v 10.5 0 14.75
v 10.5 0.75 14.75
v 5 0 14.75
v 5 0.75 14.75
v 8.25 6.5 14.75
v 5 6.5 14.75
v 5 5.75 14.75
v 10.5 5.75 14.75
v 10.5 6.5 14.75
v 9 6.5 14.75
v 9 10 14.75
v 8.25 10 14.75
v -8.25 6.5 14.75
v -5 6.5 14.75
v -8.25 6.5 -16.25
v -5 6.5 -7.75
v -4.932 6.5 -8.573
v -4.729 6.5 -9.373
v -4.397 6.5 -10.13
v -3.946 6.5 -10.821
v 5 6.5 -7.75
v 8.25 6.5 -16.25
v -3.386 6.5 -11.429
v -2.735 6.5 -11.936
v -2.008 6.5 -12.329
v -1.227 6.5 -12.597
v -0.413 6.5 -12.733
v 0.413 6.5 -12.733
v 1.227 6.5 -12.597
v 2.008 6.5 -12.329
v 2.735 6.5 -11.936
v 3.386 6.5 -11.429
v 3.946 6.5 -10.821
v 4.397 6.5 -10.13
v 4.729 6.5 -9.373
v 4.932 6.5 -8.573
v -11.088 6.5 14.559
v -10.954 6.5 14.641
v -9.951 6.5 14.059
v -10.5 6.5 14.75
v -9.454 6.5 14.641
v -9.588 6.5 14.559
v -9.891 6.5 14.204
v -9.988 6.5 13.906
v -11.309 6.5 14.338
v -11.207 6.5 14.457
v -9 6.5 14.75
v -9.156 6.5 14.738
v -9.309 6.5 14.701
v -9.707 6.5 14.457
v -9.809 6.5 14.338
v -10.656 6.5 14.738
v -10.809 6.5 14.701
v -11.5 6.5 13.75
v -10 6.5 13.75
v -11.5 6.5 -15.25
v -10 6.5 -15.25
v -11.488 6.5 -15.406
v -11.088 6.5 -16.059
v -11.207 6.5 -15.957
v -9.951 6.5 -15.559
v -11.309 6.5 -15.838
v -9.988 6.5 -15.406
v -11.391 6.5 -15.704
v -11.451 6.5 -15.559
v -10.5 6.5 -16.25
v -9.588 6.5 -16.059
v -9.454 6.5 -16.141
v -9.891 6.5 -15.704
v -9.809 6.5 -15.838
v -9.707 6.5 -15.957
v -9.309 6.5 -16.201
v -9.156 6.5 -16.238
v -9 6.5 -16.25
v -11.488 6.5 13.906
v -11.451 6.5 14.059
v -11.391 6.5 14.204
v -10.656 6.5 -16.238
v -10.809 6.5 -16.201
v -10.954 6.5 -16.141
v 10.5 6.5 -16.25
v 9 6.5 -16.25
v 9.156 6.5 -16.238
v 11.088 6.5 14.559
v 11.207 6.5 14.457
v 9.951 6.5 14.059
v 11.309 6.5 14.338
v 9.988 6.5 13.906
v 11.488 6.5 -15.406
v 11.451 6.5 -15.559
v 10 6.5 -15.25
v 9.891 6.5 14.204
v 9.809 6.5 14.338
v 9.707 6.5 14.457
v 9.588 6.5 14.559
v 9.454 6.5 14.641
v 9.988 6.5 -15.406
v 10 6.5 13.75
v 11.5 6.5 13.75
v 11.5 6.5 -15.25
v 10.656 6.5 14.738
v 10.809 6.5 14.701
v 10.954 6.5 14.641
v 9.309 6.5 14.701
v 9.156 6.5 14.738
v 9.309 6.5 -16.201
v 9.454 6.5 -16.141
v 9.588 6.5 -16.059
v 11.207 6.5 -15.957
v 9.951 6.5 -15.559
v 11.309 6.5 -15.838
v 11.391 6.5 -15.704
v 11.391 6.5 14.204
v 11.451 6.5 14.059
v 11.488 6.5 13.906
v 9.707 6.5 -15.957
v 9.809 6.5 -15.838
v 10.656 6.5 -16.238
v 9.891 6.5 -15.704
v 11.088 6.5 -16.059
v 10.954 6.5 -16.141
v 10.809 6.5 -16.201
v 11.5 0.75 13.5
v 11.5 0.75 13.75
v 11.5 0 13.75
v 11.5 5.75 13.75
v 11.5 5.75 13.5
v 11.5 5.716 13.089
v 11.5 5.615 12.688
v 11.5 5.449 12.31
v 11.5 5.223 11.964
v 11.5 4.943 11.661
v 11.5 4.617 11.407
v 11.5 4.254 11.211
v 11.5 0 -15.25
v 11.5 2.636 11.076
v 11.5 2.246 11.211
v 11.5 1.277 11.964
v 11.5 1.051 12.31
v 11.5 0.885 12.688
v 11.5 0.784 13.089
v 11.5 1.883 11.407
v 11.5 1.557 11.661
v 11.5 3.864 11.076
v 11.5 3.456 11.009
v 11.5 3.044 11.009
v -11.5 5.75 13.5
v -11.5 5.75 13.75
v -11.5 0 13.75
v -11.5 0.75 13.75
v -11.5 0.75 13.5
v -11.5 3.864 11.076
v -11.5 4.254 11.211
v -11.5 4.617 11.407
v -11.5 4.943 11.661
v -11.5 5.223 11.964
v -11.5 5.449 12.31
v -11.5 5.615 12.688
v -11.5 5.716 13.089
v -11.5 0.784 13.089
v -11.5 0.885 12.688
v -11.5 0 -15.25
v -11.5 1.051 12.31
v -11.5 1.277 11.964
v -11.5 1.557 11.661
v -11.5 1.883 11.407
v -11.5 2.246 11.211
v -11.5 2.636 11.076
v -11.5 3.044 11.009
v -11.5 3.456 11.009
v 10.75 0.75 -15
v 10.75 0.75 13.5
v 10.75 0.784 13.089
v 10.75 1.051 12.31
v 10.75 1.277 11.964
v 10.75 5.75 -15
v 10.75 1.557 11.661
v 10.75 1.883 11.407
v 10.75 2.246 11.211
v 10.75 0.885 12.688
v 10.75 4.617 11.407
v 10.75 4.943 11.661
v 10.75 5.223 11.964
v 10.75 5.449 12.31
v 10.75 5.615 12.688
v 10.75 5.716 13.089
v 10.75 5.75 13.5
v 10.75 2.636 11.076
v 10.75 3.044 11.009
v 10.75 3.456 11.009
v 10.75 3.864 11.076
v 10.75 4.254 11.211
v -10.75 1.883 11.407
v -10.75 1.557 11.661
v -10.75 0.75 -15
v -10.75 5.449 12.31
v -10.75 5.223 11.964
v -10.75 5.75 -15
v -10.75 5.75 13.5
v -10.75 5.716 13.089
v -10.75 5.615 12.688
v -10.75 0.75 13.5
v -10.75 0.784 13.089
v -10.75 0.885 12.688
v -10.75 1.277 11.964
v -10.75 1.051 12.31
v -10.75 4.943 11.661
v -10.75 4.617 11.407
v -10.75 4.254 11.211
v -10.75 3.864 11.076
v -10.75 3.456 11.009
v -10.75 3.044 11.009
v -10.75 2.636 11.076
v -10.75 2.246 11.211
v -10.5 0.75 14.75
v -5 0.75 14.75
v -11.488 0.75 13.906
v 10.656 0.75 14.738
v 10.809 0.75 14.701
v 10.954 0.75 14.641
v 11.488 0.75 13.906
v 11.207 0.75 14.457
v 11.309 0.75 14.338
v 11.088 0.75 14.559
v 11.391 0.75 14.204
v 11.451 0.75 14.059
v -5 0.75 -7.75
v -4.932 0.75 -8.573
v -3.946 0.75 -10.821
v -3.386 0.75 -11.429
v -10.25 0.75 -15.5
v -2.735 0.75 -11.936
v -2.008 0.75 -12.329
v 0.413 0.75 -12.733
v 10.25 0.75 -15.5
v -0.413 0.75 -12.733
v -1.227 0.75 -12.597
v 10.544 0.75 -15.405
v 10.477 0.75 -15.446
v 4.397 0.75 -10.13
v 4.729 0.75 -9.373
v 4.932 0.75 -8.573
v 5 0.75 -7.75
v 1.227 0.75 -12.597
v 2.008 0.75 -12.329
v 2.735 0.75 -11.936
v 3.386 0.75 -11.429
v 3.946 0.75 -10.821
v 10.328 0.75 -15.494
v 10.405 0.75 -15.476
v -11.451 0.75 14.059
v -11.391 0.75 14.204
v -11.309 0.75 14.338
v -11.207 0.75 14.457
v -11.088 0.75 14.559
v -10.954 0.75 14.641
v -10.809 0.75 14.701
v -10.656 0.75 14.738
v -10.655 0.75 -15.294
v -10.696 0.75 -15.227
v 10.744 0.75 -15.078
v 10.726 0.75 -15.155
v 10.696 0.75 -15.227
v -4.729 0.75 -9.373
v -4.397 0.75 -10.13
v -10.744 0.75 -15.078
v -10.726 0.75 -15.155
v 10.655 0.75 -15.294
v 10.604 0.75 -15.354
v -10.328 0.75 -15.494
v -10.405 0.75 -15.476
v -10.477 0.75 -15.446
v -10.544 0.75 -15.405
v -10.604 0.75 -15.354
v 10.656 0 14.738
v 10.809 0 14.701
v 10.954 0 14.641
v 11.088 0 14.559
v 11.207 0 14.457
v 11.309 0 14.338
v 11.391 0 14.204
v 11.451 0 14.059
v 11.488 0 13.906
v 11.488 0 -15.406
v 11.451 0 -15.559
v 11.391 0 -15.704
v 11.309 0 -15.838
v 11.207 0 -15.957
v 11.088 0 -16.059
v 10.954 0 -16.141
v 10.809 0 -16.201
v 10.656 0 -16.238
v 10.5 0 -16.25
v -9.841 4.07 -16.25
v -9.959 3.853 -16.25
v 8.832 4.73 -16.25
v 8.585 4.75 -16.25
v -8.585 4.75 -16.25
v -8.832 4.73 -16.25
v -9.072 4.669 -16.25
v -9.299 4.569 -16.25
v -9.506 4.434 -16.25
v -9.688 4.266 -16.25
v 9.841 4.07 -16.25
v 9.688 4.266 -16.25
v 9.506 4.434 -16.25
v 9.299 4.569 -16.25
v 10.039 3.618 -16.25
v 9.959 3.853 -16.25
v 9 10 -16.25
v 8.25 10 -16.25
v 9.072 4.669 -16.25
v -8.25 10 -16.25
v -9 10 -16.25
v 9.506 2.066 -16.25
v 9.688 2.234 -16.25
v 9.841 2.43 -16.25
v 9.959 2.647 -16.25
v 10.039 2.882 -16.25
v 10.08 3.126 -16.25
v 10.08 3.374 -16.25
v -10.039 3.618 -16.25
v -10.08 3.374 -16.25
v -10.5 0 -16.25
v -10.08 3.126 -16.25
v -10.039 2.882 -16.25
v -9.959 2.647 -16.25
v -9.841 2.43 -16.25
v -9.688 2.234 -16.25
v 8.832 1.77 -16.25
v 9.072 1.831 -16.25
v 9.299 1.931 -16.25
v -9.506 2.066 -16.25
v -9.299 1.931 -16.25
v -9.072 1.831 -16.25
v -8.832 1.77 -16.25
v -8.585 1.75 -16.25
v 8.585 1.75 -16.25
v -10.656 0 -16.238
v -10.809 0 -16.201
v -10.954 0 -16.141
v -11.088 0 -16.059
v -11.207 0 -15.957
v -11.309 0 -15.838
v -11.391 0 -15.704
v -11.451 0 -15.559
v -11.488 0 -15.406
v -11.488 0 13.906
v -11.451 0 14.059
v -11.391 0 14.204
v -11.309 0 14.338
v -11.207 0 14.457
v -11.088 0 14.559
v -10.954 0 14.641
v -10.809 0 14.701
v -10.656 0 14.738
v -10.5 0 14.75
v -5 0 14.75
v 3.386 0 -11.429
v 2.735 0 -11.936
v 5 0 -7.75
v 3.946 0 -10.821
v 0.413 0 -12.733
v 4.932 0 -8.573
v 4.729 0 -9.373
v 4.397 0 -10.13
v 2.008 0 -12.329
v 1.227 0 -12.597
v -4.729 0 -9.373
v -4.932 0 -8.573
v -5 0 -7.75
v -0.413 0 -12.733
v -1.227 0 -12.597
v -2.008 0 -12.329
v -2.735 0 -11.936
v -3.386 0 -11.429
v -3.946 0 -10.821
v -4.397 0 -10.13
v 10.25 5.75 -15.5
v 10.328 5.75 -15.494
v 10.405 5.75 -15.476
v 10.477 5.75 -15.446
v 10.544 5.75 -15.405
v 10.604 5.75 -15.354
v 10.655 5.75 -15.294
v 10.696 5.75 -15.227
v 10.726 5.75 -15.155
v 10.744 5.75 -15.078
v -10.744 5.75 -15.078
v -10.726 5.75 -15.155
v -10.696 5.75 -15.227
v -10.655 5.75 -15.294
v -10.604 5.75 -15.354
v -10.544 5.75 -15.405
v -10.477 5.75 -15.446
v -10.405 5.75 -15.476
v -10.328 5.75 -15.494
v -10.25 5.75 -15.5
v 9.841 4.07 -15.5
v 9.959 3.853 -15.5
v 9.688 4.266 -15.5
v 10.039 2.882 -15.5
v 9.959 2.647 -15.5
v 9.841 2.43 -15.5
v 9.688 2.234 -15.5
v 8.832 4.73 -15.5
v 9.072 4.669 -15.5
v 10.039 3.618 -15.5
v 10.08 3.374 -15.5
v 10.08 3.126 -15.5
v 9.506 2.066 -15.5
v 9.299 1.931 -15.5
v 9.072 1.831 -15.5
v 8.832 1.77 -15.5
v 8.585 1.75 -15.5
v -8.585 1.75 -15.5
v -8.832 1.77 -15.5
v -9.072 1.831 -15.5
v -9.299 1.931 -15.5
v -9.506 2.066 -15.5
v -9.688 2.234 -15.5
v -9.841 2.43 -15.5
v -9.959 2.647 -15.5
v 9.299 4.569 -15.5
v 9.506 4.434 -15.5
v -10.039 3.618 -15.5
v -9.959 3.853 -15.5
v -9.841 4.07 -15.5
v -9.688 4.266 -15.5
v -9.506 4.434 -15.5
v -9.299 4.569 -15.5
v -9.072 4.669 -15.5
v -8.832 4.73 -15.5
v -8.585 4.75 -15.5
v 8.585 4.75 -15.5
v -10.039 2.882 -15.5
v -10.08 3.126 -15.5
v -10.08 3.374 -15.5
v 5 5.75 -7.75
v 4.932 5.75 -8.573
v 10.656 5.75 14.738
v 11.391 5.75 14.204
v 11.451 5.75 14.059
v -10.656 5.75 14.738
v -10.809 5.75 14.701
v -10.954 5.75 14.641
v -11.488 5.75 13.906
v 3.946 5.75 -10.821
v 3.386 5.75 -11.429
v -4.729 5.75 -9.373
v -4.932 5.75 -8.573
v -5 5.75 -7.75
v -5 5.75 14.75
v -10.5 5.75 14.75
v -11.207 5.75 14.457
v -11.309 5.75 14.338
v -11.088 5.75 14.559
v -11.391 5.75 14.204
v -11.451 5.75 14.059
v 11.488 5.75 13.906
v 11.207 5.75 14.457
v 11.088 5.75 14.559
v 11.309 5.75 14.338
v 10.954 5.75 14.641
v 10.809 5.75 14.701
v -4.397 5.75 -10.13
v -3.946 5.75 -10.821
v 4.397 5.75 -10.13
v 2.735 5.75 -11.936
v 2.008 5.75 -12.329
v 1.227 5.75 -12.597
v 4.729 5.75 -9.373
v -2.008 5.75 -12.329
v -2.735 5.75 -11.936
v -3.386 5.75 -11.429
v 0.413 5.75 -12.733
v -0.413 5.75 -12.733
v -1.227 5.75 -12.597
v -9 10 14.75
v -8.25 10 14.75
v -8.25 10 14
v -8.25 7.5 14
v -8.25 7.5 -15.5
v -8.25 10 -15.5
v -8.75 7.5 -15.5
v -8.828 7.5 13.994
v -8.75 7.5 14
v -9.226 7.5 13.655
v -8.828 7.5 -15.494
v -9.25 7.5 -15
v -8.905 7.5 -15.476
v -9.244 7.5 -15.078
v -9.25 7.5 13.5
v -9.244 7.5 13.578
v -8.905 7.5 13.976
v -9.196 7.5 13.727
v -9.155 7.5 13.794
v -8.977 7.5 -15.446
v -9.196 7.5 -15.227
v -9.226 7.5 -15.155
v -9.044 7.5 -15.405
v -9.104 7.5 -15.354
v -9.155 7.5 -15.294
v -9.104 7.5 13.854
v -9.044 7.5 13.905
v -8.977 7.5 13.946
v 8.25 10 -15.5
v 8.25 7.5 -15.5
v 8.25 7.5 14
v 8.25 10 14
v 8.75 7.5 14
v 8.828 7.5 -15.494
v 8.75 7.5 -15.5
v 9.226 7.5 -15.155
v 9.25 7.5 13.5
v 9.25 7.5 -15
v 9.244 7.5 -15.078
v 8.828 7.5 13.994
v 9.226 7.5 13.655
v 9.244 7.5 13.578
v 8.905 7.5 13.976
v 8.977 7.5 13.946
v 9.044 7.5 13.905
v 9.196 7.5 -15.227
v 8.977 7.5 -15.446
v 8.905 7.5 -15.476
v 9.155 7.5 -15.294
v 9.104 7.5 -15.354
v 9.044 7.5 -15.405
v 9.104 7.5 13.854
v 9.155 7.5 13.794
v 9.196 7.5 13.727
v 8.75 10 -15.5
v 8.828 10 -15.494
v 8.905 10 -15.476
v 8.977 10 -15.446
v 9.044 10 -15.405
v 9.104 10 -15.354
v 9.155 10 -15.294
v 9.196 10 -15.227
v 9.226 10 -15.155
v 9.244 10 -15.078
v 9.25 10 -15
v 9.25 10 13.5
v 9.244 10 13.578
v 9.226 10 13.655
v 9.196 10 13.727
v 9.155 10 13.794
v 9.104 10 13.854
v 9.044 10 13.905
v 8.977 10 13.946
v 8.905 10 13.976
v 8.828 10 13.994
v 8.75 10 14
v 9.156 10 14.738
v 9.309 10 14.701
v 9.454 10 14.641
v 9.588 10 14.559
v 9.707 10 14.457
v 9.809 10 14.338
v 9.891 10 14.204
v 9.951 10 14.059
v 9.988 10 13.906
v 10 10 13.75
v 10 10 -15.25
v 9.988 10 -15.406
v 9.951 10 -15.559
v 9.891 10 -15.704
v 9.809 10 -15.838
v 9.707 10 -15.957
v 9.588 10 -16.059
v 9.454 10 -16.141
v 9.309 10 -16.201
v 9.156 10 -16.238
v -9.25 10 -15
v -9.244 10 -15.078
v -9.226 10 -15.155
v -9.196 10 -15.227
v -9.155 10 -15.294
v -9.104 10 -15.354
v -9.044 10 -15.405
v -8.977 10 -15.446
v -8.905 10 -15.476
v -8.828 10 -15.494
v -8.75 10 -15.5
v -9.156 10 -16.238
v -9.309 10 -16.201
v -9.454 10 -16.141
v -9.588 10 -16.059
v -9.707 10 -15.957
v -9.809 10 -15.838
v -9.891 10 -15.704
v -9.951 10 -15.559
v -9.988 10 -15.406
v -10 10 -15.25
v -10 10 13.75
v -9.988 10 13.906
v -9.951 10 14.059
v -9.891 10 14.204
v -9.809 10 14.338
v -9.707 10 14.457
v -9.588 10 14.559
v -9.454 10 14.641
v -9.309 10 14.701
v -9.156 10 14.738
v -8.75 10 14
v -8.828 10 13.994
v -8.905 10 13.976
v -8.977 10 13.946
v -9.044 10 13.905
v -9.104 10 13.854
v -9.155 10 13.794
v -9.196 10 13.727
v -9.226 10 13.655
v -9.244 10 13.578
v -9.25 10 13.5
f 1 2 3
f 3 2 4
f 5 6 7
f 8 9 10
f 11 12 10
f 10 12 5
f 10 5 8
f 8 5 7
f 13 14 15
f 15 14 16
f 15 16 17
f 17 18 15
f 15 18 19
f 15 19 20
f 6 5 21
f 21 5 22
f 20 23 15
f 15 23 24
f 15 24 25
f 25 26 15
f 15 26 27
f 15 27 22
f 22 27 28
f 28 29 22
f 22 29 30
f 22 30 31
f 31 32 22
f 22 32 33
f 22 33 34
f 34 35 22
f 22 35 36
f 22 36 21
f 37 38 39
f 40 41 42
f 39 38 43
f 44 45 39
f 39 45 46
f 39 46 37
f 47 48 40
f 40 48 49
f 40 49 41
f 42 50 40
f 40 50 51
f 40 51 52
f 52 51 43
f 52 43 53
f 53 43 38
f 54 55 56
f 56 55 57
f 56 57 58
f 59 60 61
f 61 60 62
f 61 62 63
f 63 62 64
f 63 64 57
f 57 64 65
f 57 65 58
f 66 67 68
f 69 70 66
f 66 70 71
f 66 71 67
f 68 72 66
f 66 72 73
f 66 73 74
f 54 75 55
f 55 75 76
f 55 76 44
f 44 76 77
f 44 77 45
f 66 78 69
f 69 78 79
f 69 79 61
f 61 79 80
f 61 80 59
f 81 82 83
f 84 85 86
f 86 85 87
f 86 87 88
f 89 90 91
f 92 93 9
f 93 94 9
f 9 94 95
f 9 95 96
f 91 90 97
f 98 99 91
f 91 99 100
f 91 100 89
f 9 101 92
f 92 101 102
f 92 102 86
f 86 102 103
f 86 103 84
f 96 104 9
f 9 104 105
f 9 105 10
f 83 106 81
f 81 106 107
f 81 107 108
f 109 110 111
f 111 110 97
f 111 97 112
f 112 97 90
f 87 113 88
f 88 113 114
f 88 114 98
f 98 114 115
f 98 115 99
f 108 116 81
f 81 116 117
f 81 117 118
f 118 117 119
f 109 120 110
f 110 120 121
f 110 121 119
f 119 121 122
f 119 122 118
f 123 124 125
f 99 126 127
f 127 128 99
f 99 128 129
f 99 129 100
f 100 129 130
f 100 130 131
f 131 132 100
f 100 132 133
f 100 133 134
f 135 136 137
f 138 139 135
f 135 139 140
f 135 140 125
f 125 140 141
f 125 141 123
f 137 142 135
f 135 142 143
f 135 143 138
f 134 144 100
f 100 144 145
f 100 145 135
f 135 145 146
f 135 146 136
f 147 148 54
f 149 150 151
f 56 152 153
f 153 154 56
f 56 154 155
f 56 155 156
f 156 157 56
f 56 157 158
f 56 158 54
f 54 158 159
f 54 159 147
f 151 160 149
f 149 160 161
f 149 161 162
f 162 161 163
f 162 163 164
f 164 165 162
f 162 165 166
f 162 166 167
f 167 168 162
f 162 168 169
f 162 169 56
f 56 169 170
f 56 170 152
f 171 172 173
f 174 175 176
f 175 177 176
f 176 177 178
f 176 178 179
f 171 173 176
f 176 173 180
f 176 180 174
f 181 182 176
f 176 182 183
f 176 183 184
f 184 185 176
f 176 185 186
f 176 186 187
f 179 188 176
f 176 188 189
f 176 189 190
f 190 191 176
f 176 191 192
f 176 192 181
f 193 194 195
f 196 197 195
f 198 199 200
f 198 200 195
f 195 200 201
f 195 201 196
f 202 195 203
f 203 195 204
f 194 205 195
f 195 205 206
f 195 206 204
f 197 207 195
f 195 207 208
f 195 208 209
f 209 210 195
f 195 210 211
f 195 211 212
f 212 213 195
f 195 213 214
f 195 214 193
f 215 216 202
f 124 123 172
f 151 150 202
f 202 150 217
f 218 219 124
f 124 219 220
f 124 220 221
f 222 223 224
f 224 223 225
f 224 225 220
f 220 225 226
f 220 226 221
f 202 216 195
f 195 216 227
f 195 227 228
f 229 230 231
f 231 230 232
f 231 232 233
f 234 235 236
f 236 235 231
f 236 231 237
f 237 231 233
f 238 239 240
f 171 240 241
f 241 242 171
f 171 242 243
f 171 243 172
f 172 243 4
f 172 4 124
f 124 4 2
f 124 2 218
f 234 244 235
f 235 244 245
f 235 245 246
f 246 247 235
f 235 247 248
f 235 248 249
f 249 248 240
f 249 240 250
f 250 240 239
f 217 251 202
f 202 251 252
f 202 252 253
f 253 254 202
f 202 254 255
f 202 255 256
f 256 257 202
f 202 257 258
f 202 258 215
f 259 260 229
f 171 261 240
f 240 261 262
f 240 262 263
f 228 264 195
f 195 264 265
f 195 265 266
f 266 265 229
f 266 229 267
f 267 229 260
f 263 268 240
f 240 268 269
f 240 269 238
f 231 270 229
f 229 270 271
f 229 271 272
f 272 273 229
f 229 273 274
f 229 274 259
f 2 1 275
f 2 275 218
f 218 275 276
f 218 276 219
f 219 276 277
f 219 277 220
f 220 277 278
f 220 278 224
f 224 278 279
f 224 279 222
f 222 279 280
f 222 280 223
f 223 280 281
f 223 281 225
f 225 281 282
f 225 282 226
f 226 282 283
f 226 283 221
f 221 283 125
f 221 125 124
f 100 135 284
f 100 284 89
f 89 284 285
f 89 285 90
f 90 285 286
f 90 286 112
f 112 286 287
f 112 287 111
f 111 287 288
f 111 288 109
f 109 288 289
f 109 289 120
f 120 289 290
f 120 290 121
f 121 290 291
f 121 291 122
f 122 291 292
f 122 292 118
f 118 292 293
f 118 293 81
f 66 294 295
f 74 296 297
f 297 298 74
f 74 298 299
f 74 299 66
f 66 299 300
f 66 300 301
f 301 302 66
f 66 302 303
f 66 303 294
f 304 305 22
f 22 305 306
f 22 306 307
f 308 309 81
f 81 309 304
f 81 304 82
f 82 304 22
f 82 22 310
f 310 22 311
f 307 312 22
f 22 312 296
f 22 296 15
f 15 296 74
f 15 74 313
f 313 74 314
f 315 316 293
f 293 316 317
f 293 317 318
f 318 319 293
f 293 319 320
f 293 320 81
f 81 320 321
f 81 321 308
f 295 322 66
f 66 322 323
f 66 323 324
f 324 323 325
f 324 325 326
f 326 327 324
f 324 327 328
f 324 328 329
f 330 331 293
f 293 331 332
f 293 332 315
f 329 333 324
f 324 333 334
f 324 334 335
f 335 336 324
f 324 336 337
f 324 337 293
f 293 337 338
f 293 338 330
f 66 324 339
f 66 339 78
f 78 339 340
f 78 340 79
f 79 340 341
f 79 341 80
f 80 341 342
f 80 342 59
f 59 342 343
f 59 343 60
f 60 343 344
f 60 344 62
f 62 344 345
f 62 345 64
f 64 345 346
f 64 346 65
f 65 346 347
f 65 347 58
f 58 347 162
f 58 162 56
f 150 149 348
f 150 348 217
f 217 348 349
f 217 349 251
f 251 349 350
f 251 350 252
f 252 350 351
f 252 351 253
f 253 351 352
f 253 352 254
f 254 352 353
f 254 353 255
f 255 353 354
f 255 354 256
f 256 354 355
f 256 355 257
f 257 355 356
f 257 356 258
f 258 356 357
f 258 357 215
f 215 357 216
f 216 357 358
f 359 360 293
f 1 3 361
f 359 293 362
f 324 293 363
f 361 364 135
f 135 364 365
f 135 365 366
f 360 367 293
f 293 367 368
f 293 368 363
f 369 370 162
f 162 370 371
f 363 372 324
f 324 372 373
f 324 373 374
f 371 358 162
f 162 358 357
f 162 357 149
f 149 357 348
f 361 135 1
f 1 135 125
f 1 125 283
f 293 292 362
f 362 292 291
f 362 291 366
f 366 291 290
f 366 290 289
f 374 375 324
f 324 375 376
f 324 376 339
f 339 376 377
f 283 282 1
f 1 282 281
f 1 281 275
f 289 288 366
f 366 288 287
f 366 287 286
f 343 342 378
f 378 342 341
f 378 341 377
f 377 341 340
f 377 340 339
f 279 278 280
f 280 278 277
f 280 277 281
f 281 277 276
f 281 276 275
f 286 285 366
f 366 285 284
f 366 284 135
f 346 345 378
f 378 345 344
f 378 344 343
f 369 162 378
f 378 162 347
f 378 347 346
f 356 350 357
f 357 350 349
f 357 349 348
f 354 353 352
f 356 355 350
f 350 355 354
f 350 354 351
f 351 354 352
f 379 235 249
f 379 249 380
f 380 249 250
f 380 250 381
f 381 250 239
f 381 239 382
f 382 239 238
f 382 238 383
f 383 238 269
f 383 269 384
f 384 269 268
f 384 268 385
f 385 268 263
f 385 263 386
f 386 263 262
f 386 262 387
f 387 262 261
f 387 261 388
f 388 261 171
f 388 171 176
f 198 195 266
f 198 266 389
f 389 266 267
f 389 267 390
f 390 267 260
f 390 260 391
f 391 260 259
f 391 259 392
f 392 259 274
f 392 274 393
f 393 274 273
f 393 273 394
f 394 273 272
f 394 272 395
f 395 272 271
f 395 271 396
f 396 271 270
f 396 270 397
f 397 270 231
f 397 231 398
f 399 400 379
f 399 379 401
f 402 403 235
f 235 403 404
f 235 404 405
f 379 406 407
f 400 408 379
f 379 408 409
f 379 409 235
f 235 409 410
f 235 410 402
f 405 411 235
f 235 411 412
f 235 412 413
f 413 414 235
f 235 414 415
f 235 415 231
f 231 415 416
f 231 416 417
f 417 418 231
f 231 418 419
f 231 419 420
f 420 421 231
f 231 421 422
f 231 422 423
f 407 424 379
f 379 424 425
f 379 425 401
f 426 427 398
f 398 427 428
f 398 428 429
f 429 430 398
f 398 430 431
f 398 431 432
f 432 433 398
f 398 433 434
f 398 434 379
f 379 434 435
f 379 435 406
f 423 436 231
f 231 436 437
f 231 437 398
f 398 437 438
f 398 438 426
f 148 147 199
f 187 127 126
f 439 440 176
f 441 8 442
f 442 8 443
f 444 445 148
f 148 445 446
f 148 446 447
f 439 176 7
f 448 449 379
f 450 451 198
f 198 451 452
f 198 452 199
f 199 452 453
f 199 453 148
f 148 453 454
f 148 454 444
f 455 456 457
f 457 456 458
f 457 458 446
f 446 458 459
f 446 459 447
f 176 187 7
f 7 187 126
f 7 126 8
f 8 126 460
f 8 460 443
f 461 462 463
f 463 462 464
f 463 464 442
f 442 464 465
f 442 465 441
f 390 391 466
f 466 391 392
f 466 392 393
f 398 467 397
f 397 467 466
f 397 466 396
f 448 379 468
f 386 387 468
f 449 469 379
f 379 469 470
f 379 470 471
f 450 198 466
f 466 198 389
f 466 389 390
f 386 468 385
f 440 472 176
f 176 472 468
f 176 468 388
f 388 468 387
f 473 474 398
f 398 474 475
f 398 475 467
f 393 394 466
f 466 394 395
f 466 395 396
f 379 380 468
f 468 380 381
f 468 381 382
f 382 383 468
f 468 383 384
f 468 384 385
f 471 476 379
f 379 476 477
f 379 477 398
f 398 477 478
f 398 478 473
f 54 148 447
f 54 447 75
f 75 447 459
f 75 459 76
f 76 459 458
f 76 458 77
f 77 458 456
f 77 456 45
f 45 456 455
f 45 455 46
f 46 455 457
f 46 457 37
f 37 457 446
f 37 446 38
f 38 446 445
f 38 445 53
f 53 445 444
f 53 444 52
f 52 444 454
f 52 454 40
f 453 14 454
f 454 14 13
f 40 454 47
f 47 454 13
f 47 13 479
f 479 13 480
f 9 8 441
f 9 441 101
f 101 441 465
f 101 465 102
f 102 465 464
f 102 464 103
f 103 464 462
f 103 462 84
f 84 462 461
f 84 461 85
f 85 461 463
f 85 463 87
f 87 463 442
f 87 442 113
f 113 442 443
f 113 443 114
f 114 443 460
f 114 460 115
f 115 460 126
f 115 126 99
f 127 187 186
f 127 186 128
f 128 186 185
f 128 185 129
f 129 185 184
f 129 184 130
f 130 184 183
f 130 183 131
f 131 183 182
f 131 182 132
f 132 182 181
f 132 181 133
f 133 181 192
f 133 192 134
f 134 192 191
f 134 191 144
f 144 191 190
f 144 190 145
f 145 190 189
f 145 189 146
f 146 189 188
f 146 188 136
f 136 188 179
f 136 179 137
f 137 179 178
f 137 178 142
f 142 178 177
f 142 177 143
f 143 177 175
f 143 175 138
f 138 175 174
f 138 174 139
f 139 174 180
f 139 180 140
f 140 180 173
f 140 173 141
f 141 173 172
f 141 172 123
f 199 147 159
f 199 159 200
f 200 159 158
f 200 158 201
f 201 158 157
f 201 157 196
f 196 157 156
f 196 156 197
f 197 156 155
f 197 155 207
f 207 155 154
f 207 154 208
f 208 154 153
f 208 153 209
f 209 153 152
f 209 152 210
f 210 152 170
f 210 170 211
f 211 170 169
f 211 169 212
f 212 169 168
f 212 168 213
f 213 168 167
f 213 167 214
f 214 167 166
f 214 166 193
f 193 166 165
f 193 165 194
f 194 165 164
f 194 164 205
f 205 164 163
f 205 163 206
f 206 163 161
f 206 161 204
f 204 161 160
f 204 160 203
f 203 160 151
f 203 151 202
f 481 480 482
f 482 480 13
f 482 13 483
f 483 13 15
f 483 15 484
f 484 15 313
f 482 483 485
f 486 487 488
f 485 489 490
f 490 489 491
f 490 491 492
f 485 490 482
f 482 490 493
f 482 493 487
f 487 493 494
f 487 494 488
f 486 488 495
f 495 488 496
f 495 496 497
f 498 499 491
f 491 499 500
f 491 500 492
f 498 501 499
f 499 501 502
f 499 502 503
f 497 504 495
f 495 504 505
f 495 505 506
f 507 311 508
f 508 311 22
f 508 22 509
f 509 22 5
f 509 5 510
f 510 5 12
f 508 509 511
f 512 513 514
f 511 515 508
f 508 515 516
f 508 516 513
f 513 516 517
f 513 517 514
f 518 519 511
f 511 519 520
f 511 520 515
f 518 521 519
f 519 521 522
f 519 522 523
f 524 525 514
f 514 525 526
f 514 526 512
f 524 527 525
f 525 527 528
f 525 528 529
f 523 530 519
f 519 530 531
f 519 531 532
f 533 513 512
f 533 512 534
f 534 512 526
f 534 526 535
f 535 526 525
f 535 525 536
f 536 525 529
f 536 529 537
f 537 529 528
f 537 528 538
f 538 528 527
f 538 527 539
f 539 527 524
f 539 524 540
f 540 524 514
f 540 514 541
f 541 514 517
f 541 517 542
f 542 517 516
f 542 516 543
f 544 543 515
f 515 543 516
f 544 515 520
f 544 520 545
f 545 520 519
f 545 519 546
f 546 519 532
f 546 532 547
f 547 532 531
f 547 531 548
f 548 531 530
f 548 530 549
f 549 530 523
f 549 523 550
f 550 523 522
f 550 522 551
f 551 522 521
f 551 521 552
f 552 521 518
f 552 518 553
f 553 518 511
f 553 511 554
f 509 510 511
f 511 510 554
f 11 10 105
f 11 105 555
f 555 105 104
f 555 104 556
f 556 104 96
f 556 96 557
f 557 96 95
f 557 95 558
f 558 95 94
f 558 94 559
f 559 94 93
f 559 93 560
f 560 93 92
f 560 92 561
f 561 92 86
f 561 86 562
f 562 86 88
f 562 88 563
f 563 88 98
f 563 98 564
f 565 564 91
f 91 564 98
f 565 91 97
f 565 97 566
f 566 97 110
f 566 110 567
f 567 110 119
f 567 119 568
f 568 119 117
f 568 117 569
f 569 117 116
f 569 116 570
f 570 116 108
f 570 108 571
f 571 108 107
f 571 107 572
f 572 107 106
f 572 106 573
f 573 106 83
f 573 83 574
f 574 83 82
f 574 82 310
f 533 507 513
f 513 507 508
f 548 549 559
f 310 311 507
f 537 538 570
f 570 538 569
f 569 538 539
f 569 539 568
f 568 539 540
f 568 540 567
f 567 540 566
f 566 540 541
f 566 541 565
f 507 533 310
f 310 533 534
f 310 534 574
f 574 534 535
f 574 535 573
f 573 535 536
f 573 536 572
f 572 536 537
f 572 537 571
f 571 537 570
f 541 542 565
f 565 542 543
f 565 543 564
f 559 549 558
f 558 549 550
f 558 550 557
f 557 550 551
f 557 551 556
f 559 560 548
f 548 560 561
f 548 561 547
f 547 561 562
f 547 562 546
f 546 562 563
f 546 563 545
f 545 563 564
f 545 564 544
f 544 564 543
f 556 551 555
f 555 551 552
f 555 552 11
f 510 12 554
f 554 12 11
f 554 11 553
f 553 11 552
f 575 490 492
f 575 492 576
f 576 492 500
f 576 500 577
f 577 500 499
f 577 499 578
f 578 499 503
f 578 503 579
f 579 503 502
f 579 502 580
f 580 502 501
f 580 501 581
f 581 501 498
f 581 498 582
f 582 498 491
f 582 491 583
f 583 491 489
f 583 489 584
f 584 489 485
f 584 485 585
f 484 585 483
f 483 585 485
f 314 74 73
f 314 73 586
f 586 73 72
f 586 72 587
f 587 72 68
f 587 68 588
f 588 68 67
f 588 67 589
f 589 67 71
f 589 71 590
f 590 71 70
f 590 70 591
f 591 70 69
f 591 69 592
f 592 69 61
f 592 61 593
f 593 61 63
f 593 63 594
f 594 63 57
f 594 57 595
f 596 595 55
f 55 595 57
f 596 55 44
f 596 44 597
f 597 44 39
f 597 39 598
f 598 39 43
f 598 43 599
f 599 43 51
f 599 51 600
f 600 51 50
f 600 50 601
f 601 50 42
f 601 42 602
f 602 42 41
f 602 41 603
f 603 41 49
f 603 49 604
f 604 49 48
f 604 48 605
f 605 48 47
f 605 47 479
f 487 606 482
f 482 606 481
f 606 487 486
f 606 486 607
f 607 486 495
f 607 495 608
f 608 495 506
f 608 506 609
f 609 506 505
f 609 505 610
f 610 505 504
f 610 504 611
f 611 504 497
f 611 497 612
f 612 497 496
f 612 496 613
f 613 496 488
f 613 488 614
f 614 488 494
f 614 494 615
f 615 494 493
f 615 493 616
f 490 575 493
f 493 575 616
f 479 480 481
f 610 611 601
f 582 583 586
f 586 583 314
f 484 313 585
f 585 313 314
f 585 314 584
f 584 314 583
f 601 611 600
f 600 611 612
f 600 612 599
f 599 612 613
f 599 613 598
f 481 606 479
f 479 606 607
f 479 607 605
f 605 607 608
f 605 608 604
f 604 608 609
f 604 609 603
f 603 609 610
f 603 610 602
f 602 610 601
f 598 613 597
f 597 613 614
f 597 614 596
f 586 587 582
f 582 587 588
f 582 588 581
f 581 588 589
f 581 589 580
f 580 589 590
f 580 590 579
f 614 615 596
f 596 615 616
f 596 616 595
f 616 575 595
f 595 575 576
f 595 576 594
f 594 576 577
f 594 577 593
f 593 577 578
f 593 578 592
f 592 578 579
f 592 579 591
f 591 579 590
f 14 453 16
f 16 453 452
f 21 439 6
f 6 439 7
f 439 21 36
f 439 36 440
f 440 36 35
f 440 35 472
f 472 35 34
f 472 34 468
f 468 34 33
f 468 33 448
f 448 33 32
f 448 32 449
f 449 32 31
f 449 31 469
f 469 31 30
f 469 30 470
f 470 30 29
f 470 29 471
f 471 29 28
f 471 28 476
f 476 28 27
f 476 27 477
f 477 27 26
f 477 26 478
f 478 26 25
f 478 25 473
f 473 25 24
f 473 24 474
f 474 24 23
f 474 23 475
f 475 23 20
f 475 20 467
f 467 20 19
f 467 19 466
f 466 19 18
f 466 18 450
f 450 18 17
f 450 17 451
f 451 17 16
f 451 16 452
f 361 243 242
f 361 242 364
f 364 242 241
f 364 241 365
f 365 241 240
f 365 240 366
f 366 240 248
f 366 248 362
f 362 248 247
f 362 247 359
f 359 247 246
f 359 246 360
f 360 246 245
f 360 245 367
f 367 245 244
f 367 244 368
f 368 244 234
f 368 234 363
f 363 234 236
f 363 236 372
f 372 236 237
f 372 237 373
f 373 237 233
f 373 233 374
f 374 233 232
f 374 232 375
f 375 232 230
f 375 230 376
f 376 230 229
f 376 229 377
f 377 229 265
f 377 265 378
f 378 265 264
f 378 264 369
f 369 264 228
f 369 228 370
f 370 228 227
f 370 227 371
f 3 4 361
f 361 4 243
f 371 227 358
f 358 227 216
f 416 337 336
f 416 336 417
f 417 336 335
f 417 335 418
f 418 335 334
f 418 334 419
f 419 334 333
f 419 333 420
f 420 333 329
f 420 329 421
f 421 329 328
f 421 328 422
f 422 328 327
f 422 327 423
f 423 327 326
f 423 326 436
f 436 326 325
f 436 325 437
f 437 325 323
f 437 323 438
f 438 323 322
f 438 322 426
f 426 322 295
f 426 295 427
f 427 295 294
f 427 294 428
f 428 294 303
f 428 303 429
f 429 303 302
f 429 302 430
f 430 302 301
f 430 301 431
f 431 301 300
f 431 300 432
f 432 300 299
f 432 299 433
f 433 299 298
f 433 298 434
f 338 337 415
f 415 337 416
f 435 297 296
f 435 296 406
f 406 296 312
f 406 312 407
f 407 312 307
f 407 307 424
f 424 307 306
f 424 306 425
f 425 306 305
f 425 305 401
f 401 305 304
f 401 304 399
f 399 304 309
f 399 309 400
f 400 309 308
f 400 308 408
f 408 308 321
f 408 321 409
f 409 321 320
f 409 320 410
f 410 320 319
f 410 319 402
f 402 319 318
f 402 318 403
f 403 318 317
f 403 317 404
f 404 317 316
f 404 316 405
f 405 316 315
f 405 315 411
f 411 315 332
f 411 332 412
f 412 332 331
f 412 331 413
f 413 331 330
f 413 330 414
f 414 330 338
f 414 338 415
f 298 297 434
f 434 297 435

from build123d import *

# Parameters (mm, degrees)
BASE_EXTRUDE_DEPTH        = 0.75
SIDEWALL_EXTRUDE_DEPTH    = 5.75
TOP_EXTRUDE_START         = 5.75
TOP_EXTRUDE_DEPTH         = 0.75
CUT_EXTRUDE1_DEPTH        = 29.901773302
CUT_EXTRUDE1_DEPTH_BACK   = 29.901773302
PCB_SUPPORT_EXTRUDE_DEPTH = 1
PCB_RIM_EXTRUDE_DEPTH     = 3.5
CUT_EXTRUDE2_DEPTH        = 21.941883869
CUT_EXTRUDE3_DEPTH        = 3.5


with BuildPart() as part:
    # battery-base → base-extrude (new body)
    with BuildSketch(Plane(origin=(0, 0, 0), x_dir=(1, 0, 0), z_dir=(0, 1, 0))):
        with BuildLine():
            Line((-10.5, 16.25), (10.5, 16.25))
            ThreePointArc((10.5, 16.25), (11.207106781, 15.957106781), (11.5, 15.25))
            Line((11.5, 15.25), (11.5, -13.75))
            ThreePointArc((11.5, -13.75), (11.207106781, -14.457106781), (10.5, -14.75))
            Line((10.5, -14.75), (-10.5, -14.75))
            ThreePointArc((-10.5, -14.75), (-11.207106781, -14.457106781), (-11.5, -13.75))
            Line((-11.5, -13.75), (-11.5, 15.25))
            ThreePointArc((-11.5, 15.25), (-11.207106781, 15.957106781), (-10.5, 16.25))
        make_face()
    extrude(amount=BASE_EXTRUDE_DEPTH)

    # battery-base<12> → sidewall-extrude (add)
    with BuildSketch(Plane(origin=(0, 0, 0), x_dir=(1, 0, 0), z_dir=(0, 1, 0))):
        with BuildLine():
            Line((-11.5, -13.5), (-10.75, -13.5))
            Line((-10.75, -13.5), (-10.75, 15))
            ThreePointArc((-10.75, 15), (-10.603553391, 15.353553391), (-10.25, 15.5))
            Line((-10.25, 15.5), (10.25, 15.5))
            ThreePointArc((10.25, 15.5), (10.603553391, 15.353553391), (10.75, 15))
            Line((10.75, 15), (10.75, -13.5))
            Line((10.75, -13.5), (11.5, -13.5))
            Line((11.5, -13.5), (11.5, 15.25))
            ThreePointArc((11.5, 15.25), (11.207106781, 15.957106781), (10.5, 16.25))
            Line((10.5, 16.25), (-10.5, 16.25))
            ThreePointArc((-10.5, 16.25), (-11.207106781, 15.957106781), (-11.5, 15.25))
            Line((-11.5, 15.25), (-11.5, -13.5))
        make_face()
    extrude(amount=SIDEWALL_EXTRUDE_DEPTH)

    # battery-base<13> → top-extrude (add)
    with BuildSketch(Plane(origin=(0, 0, 0), x_dir=(1, 0, 0), z_dir=(0, 1, 0)).offset(TOP_EXTRUDE_START)):
        with BuildLine():
            Line((11.5, -13.75), (11.5, 15.25))
            ThreePointArc((11.5, 15.25), (11.207106781, 15.957106781), (10.5, 16.25))
            Line((10.5, 16.25), (-10.5, 16.25))
            ThreePointArc((-10.5, 16.25), (-11.207106781, 15.957106781), (-11.5, 15.25))
            Line((-11.5, 15.25), (-11.5, -13.75))
            ThreePointArc((-11.5, -13.75), (-11.207106781, -14.457106781), (-10.5, -14.75))
            Line((-10.5, -14.75), (10.5, -14.75))
            ThreePointArc((10.5, -14.75), (11.207106781, -14.457106781), (11.5, -13.75))
        make_face()
    extrude(amount=TOP_EXTRUDE_DEPTH)

    # round-cut → Cut-Extrude1 (cut, two sides: drawn at the far end of the back side and taken through both)
    with BuildSketch(Plane(origin=(11.5, 0, 0), x_dir=(0, 0, -1), z_dir=(1, 0, 0)).offset(-CUT_EXTRUDE1_DEPTH_BACK)):
        with BuildLine():
            Line((-84.101155105, 0.75), (-13.5, 0.75))
            ThreePointArc((-13.5, 0.75), (-11, 3.25), (-13.5, 5.75))
            Line((-13.5, 5.75), (-84.101155105, 5.75))
            Line((-84.101155105, 5.75), (-225.303465314, 5.75))
            Line((-225.303465314, 5.75), (-225.303465314, 0.75))
            Line((-225.303465314, 0.75), (-84.101155105, 0.75))
        make_face()
    extrude(amount=CUT_EXTRUDE1_DEPTH + CUT_EXTRUDE1_DEPTH_BACK, mode=Mode.SUBTRACT)

    # PCB-support → PCB-support-extrude (add)
    with BuildSketch(Plane(origin=(0, 6.5, 0), x_dir=(1, 0, 0), z_dir=(0, 1, 0))):
        with BuildLine():
            Line((-8.75, -14), (-8.25, -14))
            Line((-8.25, -14), (-8.25, 15.5))
            Line((-8.25, 15.5), (-8.75, 15.5))
            ThreePointArc((-8.75, 15.5), (-9.103553391, 15.353553391), (-9.25, 15))
            Line((-9.25, 15), (-9.25, -13.5))
            ThreePointArc((-9.25, -13.5), (-9.103553391, -13.853553391), (-8.75, -14))
        make_face()
        with BuildLine():
            Line((8.25, 15.5), (8.25, -14))
            Line((8.25, -14), (8.75, -14))
            ThreePointArc((8.75, -14), (9.103553391, -13.853553391), (9.25, -13.5))
            Line((9.25, -13.5), (9.25, 15))
            ThreePointArc((9.25, 15), (9.103553391, 15.353553391), (8.75, 15.5))
            Line((8.75, 15.5), (8.25, 15.5))
        make_face()
    extrude(amount=PCB_SUPPORT_EXTRUDE_DEPTH)

    # PCB-support<3> → PCB-rim-extrude (add)
    with BuildSketch(Plane(origin=(0, 6.5, 0), x_dir=(1, 0, 0), z_dir=(0, 1, 0))):
        with BuildLine():
            Line((-8.25, -14.75), (-8.25, -14))
            Line((-8.25, -14), (-8.75, -14))
            ThreePointArc((-8.75, -14), (-9.103553391, -13.853553391), (-9.25, -13.5))
            Line((-9.25, -13.5), (-9.25, 15))
            ThreePointArc((-9.25, 15), (-9.103553391, 15.353553391), (-8.75, 15.5))
            Line((-8.75, 15.5), (-8.25, 15.5))
            Line((-8.25, 15.5), (-8.25, 16.25))
            Line((-8.25, 16.25), (-9, 16.25))
            ThreePointArc((-9, 16.25), (-9.707106781, 15.957106781), (-10, 15.25))
            Line((-10, 15.25), (-10, -13.75))
            ThreePointArc((-10, -13.75), (-9.707106781, -14.457106781), (-9, -14.75))
            Line((-9, -14.75), (-8.25, -14.75))
        make_face()
        with BuildLine():
            Line((8.75, -14), (8.25, -14))
            Line((8.25, -14), (8.25, -14.75))
            Line((8.25, -14.75), (9, -14.75))
            ThreePointArc((9, -14.75), (9.707106781, -14.457106781), (10, -13.75))
            Line((10, -13.75), (10, 15.25))
            ThreePointArc((10, 15.25), (9.707106781, 15.957106781), (9, 16.25))
            Line((9, 16.25), (8.25, 16.25))
            Line((8.25, 16.25), (8.25, 15.5))
            Line((8.25, 15.5), (8.75, 15.5))
            ThreePointArc((8.75, 15.5), (9.103553391, 15.353553391), (9.25, 15))
            Line((9.25, 15), (9.25, -13.5))
            ThreePointArc((9.25, -13.5), (9.103553391, -13.853553391), (8.75, -14))
        make_face()
    extrude(amount=PCB_RIM_EXTRUDE_DEPTH)

    # cut-away → Cut-Extrude2 (cut, through all)
    with BuildSketch(Plane(origin=(0, 6.5, 0), x_dir=(1, 0, 0), z_dir=(0, 1, 0))):
        with BuildLine():
            Line((-5, 7.75), (-5, -14.75))
            Line((-5, -14.75), (5, -14.75))
            Line((5, -14.75), (5, 7.75))
            ThreePointArc((5, 7.75), (0, 12.75), (-5, 7.75))
        make_face()
    extrude(amount=-CUT_EXTRUDE2_DEPTH, mode=Mode.SUBTRACT)

    # Sketch7 → Cut-Extrude3 (cut)
    with BuildSketch(Plane(origin=(0, 0, -16.25), x_dir=(-1, 0, 0), z_dir=(0, 0, -1))):
        with BuildLine():
            Line((8.584888193, 1.75), (-8.584888193, 1.75))
            ThreePointArc((-8.584888193, 1.75), (-10.084888193, 3.25), (-8.584888193, 4.75))
            Line((-8.584888193, 4.75), (8.584888193, 4.75))
            ThreePointArc((8.584888193, 4.75), (10.084888193, 3.25), (8.584888193, 1.75))
        make_face()
    extrude(amount=-CUT_EXTRUDE3_DEPTH, mode=Mode.SUBTRACT)


solid = part.part
